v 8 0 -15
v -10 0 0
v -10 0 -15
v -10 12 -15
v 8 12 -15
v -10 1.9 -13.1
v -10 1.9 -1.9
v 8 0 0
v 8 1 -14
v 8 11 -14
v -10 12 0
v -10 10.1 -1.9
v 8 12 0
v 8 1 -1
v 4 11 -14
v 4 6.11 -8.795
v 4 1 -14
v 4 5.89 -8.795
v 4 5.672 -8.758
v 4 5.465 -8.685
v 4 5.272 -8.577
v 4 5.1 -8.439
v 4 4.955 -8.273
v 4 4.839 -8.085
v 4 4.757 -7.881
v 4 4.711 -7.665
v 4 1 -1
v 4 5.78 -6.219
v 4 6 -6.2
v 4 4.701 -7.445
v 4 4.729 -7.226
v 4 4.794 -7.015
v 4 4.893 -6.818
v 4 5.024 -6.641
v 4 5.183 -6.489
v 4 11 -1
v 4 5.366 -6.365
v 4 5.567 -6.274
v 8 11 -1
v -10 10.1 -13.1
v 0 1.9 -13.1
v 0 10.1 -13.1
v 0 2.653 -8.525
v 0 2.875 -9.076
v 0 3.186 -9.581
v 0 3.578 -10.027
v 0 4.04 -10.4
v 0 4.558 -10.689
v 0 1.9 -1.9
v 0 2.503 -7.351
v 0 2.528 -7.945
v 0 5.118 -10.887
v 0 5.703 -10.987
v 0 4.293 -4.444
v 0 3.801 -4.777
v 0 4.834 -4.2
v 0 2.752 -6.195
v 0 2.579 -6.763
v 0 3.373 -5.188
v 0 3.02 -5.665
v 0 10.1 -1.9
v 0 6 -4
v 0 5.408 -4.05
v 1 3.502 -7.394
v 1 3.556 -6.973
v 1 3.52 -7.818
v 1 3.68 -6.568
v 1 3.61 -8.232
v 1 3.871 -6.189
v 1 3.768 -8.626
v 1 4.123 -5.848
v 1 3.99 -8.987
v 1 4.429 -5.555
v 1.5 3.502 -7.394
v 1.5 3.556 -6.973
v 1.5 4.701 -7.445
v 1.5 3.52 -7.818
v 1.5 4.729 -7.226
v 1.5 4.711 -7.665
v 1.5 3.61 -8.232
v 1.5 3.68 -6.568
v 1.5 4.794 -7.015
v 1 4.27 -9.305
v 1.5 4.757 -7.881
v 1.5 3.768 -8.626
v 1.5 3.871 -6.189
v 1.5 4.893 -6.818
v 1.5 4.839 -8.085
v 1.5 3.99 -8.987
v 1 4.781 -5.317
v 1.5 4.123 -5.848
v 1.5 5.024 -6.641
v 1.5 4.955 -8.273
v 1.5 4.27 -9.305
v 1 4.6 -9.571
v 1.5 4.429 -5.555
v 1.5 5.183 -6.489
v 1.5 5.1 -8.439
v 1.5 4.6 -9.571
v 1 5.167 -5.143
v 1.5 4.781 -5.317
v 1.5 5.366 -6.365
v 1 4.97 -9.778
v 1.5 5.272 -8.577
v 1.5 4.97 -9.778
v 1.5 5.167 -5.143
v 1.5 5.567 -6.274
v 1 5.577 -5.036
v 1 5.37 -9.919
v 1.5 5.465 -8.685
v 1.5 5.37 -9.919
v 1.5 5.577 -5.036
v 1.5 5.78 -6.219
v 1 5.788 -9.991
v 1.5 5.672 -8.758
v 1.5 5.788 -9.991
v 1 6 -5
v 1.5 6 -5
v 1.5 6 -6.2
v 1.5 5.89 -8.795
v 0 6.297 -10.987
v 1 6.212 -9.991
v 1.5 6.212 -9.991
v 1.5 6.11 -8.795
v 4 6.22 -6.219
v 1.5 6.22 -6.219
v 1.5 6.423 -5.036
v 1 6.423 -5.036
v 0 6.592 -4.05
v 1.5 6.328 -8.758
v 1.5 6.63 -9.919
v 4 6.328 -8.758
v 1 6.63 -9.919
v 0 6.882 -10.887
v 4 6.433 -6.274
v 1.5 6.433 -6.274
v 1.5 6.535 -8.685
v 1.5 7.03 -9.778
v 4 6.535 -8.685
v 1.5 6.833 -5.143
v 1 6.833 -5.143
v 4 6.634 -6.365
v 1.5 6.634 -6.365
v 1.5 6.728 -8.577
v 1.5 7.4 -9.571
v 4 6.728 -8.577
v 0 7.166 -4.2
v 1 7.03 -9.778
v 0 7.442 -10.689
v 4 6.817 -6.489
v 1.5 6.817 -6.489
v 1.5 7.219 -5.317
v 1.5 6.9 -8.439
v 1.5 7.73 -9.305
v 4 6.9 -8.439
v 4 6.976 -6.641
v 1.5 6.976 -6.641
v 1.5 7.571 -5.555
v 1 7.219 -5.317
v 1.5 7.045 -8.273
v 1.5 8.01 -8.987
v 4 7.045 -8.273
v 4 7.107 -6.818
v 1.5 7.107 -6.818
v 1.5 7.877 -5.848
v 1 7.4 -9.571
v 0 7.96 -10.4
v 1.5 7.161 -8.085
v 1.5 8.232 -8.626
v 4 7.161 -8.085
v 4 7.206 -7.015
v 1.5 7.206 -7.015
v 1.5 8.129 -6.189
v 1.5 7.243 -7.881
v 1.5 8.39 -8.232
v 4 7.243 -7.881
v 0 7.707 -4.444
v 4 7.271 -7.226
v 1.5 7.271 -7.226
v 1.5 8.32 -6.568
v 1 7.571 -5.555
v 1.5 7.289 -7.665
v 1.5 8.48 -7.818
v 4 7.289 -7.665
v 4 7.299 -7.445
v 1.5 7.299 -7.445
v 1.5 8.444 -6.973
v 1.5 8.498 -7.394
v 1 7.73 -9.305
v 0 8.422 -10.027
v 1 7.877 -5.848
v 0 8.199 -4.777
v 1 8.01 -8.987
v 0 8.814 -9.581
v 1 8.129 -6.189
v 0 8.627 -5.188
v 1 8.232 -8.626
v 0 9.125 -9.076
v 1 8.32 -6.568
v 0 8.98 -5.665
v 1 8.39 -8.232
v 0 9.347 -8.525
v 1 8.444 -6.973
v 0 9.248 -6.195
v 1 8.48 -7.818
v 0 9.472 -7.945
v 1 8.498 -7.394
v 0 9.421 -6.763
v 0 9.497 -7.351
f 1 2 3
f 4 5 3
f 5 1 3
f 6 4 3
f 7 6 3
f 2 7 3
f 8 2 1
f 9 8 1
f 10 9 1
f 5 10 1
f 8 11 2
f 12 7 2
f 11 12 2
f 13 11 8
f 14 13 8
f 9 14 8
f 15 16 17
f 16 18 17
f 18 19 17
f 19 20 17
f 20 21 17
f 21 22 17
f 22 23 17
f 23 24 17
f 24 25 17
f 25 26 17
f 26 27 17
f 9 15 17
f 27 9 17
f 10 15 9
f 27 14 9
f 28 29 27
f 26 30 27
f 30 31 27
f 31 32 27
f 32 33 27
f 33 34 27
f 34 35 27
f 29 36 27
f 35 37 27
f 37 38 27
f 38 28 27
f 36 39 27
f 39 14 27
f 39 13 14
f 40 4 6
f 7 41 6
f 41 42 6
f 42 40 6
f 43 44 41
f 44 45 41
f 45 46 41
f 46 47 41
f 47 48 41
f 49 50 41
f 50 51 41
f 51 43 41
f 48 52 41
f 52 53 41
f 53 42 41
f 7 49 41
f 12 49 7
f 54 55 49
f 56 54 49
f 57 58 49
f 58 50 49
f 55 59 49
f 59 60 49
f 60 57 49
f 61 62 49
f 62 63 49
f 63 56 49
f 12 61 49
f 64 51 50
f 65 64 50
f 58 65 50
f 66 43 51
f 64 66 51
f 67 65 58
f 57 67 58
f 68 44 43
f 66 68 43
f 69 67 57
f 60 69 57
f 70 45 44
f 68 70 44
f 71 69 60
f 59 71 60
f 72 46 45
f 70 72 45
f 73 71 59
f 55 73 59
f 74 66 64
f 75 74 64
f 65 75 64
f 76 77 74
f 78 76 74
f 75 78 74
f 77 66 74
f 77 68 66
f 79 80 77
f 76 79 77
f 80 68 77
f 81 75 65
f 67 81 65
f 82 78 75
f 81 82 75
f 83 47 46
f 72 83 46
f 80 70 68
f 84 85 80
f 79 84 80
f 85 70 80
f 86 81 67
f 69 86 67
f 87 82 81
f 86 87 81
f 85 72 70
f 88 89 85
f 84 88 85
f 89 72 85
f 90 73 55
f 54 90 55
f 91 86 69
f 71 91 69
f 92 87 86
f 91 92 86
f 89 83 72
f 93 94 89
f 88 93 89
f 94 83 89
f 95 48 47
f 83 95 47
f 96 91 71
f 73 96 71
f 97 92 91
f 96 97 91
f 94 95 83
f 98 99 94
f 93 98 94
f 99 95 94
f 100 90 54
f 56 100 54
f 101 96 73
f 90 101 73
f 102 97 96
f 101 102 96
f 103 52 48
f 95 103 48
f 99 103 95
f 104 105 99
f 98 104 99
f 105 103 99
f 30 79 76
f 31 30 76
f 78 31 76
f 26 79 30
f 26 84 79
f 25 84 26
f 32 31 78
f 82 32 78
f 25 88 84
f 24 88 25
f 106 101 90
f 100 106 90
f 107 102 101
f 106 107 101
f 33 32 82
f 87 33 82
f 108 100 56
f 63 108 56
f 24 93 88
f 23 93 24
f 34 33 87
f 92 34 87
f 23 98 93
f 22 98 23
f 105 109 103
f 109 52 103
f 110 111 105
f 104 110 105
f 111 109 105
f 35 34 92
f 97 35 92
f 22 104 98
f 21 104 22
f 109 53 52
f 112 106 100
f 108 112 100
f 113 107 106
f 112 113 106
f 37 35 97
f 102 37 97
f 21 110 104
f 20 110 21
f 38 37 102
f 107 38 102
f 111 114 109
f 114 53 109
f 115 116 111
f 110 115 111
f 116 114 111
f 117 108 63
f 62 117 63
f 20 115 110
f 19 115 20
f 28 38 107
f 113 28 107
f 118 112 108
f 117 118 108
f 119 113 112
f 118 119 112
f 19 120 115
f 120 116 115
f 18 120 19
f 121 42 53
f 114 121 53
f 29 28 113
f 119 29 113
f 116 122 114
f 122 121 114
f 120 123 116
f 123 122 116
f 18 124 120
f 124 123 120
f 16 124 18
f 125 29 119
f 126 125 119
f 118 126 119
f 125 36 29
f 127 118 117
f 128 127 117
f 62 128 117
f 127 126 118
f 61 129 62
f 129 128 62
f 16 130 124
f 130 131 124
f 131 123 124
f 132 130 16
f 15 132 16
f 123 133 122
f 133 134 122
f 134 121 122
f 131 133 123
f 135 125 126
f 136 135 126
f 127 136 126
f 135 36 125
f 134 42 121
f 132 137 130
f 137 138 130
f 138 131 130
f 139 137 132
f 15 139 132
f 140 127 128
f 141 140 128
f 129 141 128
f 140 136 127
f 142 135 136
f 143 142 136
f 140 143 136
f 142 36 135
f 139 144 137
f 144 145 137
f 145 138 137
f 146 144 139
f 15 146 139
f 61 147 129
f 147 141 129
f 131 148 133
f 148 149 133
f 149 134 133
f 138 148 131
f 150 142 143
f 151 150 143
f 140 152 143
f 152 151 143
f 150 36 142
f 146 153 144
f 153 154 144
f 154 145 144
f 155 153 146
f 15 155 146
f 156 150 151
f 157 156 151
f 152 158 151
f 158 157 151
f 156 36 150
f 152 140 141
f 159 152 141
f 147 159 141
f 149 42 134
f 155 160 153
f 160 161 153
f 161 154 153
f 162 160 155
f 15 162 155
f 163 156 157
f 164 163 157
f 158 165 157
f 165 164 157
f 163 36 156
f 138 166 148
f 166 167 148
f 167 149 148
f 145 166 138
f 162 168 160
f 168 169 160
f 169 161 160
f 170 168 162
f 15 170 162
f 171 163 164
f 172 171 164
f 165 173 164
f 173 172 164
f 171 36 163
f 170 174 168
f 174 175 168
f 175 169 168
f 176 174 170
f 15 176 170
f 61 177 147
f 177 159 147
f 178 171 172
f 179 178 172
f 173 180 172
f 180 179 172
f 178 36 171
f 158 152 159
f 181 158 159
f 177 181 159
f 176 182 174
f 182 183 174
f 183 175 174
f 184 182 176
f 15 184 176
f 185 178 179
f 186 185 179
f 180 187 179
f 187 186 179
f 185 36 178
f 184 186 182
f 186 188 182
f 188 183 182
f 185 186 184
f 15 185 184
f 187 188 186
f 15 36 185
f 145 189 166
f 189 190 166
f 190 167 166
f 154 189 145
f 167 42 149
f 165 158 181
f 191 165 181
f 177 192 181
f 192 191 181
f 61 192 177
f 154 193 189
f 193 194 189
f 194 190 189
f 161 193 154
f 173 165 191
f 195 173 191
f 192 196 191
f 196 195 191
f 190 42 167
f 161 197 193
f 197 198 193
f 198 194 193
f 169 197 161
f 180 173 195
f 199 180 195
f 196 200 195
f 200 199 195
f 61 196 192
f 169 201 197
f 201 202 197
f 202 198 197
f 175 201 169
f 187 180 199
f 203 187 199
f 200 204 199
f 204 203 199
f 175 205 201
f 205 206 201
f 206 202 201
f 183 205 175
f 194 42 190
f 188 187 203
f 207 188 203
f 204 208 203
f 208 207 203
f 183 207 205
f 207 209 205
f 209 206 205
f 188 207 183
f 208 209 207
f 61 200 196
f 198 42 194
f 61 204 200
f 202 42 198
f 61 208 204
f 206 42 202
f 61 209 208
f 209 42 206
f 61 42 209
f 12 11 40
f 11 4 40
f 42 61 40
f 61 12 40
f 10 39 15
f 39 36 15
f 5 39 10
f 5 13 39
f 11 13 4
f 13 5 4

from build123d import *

# Parameters (mm, degrees)
ESQUISSE1_W             = 15
ESQUISSE1_H             = 12
BOSS_EXTRU_1_DEPTH      = 4
ESQUISSE2_W             = 1
ESQUISSE2_H             = 12
BOSS_EXTRU_2_DEPTH      = 4
ESQUISSE3_W             = 13
ESQUISSE3_H             = 1
BOSS_EXTRU_3_DEPTH      = 4
ESQUISSE4_R             = 1.3
ENL_V_MAT_EXTRU_1_DEPTH = 21.808652047
ESQUISSE5_R             = 2.5
ENL_V_MAT_EXTRU_2_DEPTH = 1.5
CHANFREIN1_SIZE         = 1
ESQUISSE6_W             = 11
ESQUISSE6_H             = 8
BOSS_EXTRU_4_DEPTH      = 10
ESQUISSE7_W             = 11.2
ESQUISSE7_H             = 8.2
ENL_V_MAT_EXTRU_3_DEPTH = 10


with BuildPart() as part:
    # Esquisse1 → Boss.-Extru.1 (new body)
    with BuildSketch(Plane(origin=(0, 0, 0), x_dir=(0, 0, -1), z_dir=(1, 0, 0))):
        with Locations((7.5, 6)):
            Rectangle(ESQUISSE1_W, ESQUISSE1_H)
    extrude(amount=BOSS_EXTRU_1_DEPTH)

    # Esquisse2 → Boss.-Extru.2 (add)
    with BuildSketch(Plane(origin=(4, 0, 0), x_dir=(0, 0, -1), z_dir=(1, 0, 0))):
        with Locations((0.5, 6)):
            Rectangle(ESQUISSE2_W, ESQUISSE2_H)
        with Locations((14.5, 6)):
            Rectangle(ESQUISSE2_W, ESQUISSE2_H)
    extrude(amount=BOSS_EXTRU_2_DEPTH)

    # Esquisse3 → Boss.-Extru.3 (add)
    with BuildSketch(Plane(origin=(4, 0, 0), x_dir=(0, 0, -1), z_dir=(1, 0, 0))):
        with Locations((7.5, 11.5)):
            Rectangle(ESQUISSE3_W, ESQUISSE3_H)
        with Locations((7.5, 0.5)):
            Rectangle(ESQUISSE3_W, ESQUISSE3_H)
    extrude(amount=BOSS_EXTRU_3_DEPTH)

    # Esquisse4 → Enlèv. mat.-Extru.1 (cut, through all)
    with BuildSketch(Plane.ZY):
        with Locations((-7.5, 6)):
            Circle(ESQUISSE4_R)
    extrude(amount=-ENL_V_MAT_EXTRU_1_DEPTH, mode=Mode.SUBTRACT)

    # Esquisse5 → Enlèv. mat.-Extru.2 (cut)
    with BuildSketch(Plane.ZY):
        with Locations((-7.5, 6)):
            Circle(ESQUISSE5_R)
    extrude(amount=-ENL_V_MAT_EXTRU_2_DEPTH, mode=Mode.SUBTRACT)

    # Chanfrein1
    chanfrein1_edges = [part.edges().sort_by_distance(p)[0] for p in [
        (0, 6, -10),
    ]]
    chamfer(chanfrein1_edges, length=CHANFREIN1_SIZE)

    # Esquisse6 → Boss.-Extru.4 (add)
    with BuildSketch(Plane.ZY):
        Polygon((-2, 0), (0, 0), (0, 2), (0, 10), (0, 12), (-2, 12), (-13, 12), (-15, 12), (-15, 10), (-15, 2), (-15, 0), (-13, 0), align=None)
        with Locations((-7.5, 6)):
            Rectangle(ESQUISSE6_W, ESQUISSE6_H, mode=Mode.SUBTRACT)
    extrude(amount=BOSS_EXTRU_4_DEPTH)

    # Esquisse7 → Enlèv. mat.-Extru.3 (cut)
    with BuildSketch(Plane.ZY.offset(10)):
        with Locations((-7.5, 6)):
            Rectangle(ESQUISSE7_W, ESQUISSE7_H)
    extrude(amount=-ENL_V_MAT_EXTRU_3_DEPTH, mode=Mode.SUBTRACT)


solid = part.part
